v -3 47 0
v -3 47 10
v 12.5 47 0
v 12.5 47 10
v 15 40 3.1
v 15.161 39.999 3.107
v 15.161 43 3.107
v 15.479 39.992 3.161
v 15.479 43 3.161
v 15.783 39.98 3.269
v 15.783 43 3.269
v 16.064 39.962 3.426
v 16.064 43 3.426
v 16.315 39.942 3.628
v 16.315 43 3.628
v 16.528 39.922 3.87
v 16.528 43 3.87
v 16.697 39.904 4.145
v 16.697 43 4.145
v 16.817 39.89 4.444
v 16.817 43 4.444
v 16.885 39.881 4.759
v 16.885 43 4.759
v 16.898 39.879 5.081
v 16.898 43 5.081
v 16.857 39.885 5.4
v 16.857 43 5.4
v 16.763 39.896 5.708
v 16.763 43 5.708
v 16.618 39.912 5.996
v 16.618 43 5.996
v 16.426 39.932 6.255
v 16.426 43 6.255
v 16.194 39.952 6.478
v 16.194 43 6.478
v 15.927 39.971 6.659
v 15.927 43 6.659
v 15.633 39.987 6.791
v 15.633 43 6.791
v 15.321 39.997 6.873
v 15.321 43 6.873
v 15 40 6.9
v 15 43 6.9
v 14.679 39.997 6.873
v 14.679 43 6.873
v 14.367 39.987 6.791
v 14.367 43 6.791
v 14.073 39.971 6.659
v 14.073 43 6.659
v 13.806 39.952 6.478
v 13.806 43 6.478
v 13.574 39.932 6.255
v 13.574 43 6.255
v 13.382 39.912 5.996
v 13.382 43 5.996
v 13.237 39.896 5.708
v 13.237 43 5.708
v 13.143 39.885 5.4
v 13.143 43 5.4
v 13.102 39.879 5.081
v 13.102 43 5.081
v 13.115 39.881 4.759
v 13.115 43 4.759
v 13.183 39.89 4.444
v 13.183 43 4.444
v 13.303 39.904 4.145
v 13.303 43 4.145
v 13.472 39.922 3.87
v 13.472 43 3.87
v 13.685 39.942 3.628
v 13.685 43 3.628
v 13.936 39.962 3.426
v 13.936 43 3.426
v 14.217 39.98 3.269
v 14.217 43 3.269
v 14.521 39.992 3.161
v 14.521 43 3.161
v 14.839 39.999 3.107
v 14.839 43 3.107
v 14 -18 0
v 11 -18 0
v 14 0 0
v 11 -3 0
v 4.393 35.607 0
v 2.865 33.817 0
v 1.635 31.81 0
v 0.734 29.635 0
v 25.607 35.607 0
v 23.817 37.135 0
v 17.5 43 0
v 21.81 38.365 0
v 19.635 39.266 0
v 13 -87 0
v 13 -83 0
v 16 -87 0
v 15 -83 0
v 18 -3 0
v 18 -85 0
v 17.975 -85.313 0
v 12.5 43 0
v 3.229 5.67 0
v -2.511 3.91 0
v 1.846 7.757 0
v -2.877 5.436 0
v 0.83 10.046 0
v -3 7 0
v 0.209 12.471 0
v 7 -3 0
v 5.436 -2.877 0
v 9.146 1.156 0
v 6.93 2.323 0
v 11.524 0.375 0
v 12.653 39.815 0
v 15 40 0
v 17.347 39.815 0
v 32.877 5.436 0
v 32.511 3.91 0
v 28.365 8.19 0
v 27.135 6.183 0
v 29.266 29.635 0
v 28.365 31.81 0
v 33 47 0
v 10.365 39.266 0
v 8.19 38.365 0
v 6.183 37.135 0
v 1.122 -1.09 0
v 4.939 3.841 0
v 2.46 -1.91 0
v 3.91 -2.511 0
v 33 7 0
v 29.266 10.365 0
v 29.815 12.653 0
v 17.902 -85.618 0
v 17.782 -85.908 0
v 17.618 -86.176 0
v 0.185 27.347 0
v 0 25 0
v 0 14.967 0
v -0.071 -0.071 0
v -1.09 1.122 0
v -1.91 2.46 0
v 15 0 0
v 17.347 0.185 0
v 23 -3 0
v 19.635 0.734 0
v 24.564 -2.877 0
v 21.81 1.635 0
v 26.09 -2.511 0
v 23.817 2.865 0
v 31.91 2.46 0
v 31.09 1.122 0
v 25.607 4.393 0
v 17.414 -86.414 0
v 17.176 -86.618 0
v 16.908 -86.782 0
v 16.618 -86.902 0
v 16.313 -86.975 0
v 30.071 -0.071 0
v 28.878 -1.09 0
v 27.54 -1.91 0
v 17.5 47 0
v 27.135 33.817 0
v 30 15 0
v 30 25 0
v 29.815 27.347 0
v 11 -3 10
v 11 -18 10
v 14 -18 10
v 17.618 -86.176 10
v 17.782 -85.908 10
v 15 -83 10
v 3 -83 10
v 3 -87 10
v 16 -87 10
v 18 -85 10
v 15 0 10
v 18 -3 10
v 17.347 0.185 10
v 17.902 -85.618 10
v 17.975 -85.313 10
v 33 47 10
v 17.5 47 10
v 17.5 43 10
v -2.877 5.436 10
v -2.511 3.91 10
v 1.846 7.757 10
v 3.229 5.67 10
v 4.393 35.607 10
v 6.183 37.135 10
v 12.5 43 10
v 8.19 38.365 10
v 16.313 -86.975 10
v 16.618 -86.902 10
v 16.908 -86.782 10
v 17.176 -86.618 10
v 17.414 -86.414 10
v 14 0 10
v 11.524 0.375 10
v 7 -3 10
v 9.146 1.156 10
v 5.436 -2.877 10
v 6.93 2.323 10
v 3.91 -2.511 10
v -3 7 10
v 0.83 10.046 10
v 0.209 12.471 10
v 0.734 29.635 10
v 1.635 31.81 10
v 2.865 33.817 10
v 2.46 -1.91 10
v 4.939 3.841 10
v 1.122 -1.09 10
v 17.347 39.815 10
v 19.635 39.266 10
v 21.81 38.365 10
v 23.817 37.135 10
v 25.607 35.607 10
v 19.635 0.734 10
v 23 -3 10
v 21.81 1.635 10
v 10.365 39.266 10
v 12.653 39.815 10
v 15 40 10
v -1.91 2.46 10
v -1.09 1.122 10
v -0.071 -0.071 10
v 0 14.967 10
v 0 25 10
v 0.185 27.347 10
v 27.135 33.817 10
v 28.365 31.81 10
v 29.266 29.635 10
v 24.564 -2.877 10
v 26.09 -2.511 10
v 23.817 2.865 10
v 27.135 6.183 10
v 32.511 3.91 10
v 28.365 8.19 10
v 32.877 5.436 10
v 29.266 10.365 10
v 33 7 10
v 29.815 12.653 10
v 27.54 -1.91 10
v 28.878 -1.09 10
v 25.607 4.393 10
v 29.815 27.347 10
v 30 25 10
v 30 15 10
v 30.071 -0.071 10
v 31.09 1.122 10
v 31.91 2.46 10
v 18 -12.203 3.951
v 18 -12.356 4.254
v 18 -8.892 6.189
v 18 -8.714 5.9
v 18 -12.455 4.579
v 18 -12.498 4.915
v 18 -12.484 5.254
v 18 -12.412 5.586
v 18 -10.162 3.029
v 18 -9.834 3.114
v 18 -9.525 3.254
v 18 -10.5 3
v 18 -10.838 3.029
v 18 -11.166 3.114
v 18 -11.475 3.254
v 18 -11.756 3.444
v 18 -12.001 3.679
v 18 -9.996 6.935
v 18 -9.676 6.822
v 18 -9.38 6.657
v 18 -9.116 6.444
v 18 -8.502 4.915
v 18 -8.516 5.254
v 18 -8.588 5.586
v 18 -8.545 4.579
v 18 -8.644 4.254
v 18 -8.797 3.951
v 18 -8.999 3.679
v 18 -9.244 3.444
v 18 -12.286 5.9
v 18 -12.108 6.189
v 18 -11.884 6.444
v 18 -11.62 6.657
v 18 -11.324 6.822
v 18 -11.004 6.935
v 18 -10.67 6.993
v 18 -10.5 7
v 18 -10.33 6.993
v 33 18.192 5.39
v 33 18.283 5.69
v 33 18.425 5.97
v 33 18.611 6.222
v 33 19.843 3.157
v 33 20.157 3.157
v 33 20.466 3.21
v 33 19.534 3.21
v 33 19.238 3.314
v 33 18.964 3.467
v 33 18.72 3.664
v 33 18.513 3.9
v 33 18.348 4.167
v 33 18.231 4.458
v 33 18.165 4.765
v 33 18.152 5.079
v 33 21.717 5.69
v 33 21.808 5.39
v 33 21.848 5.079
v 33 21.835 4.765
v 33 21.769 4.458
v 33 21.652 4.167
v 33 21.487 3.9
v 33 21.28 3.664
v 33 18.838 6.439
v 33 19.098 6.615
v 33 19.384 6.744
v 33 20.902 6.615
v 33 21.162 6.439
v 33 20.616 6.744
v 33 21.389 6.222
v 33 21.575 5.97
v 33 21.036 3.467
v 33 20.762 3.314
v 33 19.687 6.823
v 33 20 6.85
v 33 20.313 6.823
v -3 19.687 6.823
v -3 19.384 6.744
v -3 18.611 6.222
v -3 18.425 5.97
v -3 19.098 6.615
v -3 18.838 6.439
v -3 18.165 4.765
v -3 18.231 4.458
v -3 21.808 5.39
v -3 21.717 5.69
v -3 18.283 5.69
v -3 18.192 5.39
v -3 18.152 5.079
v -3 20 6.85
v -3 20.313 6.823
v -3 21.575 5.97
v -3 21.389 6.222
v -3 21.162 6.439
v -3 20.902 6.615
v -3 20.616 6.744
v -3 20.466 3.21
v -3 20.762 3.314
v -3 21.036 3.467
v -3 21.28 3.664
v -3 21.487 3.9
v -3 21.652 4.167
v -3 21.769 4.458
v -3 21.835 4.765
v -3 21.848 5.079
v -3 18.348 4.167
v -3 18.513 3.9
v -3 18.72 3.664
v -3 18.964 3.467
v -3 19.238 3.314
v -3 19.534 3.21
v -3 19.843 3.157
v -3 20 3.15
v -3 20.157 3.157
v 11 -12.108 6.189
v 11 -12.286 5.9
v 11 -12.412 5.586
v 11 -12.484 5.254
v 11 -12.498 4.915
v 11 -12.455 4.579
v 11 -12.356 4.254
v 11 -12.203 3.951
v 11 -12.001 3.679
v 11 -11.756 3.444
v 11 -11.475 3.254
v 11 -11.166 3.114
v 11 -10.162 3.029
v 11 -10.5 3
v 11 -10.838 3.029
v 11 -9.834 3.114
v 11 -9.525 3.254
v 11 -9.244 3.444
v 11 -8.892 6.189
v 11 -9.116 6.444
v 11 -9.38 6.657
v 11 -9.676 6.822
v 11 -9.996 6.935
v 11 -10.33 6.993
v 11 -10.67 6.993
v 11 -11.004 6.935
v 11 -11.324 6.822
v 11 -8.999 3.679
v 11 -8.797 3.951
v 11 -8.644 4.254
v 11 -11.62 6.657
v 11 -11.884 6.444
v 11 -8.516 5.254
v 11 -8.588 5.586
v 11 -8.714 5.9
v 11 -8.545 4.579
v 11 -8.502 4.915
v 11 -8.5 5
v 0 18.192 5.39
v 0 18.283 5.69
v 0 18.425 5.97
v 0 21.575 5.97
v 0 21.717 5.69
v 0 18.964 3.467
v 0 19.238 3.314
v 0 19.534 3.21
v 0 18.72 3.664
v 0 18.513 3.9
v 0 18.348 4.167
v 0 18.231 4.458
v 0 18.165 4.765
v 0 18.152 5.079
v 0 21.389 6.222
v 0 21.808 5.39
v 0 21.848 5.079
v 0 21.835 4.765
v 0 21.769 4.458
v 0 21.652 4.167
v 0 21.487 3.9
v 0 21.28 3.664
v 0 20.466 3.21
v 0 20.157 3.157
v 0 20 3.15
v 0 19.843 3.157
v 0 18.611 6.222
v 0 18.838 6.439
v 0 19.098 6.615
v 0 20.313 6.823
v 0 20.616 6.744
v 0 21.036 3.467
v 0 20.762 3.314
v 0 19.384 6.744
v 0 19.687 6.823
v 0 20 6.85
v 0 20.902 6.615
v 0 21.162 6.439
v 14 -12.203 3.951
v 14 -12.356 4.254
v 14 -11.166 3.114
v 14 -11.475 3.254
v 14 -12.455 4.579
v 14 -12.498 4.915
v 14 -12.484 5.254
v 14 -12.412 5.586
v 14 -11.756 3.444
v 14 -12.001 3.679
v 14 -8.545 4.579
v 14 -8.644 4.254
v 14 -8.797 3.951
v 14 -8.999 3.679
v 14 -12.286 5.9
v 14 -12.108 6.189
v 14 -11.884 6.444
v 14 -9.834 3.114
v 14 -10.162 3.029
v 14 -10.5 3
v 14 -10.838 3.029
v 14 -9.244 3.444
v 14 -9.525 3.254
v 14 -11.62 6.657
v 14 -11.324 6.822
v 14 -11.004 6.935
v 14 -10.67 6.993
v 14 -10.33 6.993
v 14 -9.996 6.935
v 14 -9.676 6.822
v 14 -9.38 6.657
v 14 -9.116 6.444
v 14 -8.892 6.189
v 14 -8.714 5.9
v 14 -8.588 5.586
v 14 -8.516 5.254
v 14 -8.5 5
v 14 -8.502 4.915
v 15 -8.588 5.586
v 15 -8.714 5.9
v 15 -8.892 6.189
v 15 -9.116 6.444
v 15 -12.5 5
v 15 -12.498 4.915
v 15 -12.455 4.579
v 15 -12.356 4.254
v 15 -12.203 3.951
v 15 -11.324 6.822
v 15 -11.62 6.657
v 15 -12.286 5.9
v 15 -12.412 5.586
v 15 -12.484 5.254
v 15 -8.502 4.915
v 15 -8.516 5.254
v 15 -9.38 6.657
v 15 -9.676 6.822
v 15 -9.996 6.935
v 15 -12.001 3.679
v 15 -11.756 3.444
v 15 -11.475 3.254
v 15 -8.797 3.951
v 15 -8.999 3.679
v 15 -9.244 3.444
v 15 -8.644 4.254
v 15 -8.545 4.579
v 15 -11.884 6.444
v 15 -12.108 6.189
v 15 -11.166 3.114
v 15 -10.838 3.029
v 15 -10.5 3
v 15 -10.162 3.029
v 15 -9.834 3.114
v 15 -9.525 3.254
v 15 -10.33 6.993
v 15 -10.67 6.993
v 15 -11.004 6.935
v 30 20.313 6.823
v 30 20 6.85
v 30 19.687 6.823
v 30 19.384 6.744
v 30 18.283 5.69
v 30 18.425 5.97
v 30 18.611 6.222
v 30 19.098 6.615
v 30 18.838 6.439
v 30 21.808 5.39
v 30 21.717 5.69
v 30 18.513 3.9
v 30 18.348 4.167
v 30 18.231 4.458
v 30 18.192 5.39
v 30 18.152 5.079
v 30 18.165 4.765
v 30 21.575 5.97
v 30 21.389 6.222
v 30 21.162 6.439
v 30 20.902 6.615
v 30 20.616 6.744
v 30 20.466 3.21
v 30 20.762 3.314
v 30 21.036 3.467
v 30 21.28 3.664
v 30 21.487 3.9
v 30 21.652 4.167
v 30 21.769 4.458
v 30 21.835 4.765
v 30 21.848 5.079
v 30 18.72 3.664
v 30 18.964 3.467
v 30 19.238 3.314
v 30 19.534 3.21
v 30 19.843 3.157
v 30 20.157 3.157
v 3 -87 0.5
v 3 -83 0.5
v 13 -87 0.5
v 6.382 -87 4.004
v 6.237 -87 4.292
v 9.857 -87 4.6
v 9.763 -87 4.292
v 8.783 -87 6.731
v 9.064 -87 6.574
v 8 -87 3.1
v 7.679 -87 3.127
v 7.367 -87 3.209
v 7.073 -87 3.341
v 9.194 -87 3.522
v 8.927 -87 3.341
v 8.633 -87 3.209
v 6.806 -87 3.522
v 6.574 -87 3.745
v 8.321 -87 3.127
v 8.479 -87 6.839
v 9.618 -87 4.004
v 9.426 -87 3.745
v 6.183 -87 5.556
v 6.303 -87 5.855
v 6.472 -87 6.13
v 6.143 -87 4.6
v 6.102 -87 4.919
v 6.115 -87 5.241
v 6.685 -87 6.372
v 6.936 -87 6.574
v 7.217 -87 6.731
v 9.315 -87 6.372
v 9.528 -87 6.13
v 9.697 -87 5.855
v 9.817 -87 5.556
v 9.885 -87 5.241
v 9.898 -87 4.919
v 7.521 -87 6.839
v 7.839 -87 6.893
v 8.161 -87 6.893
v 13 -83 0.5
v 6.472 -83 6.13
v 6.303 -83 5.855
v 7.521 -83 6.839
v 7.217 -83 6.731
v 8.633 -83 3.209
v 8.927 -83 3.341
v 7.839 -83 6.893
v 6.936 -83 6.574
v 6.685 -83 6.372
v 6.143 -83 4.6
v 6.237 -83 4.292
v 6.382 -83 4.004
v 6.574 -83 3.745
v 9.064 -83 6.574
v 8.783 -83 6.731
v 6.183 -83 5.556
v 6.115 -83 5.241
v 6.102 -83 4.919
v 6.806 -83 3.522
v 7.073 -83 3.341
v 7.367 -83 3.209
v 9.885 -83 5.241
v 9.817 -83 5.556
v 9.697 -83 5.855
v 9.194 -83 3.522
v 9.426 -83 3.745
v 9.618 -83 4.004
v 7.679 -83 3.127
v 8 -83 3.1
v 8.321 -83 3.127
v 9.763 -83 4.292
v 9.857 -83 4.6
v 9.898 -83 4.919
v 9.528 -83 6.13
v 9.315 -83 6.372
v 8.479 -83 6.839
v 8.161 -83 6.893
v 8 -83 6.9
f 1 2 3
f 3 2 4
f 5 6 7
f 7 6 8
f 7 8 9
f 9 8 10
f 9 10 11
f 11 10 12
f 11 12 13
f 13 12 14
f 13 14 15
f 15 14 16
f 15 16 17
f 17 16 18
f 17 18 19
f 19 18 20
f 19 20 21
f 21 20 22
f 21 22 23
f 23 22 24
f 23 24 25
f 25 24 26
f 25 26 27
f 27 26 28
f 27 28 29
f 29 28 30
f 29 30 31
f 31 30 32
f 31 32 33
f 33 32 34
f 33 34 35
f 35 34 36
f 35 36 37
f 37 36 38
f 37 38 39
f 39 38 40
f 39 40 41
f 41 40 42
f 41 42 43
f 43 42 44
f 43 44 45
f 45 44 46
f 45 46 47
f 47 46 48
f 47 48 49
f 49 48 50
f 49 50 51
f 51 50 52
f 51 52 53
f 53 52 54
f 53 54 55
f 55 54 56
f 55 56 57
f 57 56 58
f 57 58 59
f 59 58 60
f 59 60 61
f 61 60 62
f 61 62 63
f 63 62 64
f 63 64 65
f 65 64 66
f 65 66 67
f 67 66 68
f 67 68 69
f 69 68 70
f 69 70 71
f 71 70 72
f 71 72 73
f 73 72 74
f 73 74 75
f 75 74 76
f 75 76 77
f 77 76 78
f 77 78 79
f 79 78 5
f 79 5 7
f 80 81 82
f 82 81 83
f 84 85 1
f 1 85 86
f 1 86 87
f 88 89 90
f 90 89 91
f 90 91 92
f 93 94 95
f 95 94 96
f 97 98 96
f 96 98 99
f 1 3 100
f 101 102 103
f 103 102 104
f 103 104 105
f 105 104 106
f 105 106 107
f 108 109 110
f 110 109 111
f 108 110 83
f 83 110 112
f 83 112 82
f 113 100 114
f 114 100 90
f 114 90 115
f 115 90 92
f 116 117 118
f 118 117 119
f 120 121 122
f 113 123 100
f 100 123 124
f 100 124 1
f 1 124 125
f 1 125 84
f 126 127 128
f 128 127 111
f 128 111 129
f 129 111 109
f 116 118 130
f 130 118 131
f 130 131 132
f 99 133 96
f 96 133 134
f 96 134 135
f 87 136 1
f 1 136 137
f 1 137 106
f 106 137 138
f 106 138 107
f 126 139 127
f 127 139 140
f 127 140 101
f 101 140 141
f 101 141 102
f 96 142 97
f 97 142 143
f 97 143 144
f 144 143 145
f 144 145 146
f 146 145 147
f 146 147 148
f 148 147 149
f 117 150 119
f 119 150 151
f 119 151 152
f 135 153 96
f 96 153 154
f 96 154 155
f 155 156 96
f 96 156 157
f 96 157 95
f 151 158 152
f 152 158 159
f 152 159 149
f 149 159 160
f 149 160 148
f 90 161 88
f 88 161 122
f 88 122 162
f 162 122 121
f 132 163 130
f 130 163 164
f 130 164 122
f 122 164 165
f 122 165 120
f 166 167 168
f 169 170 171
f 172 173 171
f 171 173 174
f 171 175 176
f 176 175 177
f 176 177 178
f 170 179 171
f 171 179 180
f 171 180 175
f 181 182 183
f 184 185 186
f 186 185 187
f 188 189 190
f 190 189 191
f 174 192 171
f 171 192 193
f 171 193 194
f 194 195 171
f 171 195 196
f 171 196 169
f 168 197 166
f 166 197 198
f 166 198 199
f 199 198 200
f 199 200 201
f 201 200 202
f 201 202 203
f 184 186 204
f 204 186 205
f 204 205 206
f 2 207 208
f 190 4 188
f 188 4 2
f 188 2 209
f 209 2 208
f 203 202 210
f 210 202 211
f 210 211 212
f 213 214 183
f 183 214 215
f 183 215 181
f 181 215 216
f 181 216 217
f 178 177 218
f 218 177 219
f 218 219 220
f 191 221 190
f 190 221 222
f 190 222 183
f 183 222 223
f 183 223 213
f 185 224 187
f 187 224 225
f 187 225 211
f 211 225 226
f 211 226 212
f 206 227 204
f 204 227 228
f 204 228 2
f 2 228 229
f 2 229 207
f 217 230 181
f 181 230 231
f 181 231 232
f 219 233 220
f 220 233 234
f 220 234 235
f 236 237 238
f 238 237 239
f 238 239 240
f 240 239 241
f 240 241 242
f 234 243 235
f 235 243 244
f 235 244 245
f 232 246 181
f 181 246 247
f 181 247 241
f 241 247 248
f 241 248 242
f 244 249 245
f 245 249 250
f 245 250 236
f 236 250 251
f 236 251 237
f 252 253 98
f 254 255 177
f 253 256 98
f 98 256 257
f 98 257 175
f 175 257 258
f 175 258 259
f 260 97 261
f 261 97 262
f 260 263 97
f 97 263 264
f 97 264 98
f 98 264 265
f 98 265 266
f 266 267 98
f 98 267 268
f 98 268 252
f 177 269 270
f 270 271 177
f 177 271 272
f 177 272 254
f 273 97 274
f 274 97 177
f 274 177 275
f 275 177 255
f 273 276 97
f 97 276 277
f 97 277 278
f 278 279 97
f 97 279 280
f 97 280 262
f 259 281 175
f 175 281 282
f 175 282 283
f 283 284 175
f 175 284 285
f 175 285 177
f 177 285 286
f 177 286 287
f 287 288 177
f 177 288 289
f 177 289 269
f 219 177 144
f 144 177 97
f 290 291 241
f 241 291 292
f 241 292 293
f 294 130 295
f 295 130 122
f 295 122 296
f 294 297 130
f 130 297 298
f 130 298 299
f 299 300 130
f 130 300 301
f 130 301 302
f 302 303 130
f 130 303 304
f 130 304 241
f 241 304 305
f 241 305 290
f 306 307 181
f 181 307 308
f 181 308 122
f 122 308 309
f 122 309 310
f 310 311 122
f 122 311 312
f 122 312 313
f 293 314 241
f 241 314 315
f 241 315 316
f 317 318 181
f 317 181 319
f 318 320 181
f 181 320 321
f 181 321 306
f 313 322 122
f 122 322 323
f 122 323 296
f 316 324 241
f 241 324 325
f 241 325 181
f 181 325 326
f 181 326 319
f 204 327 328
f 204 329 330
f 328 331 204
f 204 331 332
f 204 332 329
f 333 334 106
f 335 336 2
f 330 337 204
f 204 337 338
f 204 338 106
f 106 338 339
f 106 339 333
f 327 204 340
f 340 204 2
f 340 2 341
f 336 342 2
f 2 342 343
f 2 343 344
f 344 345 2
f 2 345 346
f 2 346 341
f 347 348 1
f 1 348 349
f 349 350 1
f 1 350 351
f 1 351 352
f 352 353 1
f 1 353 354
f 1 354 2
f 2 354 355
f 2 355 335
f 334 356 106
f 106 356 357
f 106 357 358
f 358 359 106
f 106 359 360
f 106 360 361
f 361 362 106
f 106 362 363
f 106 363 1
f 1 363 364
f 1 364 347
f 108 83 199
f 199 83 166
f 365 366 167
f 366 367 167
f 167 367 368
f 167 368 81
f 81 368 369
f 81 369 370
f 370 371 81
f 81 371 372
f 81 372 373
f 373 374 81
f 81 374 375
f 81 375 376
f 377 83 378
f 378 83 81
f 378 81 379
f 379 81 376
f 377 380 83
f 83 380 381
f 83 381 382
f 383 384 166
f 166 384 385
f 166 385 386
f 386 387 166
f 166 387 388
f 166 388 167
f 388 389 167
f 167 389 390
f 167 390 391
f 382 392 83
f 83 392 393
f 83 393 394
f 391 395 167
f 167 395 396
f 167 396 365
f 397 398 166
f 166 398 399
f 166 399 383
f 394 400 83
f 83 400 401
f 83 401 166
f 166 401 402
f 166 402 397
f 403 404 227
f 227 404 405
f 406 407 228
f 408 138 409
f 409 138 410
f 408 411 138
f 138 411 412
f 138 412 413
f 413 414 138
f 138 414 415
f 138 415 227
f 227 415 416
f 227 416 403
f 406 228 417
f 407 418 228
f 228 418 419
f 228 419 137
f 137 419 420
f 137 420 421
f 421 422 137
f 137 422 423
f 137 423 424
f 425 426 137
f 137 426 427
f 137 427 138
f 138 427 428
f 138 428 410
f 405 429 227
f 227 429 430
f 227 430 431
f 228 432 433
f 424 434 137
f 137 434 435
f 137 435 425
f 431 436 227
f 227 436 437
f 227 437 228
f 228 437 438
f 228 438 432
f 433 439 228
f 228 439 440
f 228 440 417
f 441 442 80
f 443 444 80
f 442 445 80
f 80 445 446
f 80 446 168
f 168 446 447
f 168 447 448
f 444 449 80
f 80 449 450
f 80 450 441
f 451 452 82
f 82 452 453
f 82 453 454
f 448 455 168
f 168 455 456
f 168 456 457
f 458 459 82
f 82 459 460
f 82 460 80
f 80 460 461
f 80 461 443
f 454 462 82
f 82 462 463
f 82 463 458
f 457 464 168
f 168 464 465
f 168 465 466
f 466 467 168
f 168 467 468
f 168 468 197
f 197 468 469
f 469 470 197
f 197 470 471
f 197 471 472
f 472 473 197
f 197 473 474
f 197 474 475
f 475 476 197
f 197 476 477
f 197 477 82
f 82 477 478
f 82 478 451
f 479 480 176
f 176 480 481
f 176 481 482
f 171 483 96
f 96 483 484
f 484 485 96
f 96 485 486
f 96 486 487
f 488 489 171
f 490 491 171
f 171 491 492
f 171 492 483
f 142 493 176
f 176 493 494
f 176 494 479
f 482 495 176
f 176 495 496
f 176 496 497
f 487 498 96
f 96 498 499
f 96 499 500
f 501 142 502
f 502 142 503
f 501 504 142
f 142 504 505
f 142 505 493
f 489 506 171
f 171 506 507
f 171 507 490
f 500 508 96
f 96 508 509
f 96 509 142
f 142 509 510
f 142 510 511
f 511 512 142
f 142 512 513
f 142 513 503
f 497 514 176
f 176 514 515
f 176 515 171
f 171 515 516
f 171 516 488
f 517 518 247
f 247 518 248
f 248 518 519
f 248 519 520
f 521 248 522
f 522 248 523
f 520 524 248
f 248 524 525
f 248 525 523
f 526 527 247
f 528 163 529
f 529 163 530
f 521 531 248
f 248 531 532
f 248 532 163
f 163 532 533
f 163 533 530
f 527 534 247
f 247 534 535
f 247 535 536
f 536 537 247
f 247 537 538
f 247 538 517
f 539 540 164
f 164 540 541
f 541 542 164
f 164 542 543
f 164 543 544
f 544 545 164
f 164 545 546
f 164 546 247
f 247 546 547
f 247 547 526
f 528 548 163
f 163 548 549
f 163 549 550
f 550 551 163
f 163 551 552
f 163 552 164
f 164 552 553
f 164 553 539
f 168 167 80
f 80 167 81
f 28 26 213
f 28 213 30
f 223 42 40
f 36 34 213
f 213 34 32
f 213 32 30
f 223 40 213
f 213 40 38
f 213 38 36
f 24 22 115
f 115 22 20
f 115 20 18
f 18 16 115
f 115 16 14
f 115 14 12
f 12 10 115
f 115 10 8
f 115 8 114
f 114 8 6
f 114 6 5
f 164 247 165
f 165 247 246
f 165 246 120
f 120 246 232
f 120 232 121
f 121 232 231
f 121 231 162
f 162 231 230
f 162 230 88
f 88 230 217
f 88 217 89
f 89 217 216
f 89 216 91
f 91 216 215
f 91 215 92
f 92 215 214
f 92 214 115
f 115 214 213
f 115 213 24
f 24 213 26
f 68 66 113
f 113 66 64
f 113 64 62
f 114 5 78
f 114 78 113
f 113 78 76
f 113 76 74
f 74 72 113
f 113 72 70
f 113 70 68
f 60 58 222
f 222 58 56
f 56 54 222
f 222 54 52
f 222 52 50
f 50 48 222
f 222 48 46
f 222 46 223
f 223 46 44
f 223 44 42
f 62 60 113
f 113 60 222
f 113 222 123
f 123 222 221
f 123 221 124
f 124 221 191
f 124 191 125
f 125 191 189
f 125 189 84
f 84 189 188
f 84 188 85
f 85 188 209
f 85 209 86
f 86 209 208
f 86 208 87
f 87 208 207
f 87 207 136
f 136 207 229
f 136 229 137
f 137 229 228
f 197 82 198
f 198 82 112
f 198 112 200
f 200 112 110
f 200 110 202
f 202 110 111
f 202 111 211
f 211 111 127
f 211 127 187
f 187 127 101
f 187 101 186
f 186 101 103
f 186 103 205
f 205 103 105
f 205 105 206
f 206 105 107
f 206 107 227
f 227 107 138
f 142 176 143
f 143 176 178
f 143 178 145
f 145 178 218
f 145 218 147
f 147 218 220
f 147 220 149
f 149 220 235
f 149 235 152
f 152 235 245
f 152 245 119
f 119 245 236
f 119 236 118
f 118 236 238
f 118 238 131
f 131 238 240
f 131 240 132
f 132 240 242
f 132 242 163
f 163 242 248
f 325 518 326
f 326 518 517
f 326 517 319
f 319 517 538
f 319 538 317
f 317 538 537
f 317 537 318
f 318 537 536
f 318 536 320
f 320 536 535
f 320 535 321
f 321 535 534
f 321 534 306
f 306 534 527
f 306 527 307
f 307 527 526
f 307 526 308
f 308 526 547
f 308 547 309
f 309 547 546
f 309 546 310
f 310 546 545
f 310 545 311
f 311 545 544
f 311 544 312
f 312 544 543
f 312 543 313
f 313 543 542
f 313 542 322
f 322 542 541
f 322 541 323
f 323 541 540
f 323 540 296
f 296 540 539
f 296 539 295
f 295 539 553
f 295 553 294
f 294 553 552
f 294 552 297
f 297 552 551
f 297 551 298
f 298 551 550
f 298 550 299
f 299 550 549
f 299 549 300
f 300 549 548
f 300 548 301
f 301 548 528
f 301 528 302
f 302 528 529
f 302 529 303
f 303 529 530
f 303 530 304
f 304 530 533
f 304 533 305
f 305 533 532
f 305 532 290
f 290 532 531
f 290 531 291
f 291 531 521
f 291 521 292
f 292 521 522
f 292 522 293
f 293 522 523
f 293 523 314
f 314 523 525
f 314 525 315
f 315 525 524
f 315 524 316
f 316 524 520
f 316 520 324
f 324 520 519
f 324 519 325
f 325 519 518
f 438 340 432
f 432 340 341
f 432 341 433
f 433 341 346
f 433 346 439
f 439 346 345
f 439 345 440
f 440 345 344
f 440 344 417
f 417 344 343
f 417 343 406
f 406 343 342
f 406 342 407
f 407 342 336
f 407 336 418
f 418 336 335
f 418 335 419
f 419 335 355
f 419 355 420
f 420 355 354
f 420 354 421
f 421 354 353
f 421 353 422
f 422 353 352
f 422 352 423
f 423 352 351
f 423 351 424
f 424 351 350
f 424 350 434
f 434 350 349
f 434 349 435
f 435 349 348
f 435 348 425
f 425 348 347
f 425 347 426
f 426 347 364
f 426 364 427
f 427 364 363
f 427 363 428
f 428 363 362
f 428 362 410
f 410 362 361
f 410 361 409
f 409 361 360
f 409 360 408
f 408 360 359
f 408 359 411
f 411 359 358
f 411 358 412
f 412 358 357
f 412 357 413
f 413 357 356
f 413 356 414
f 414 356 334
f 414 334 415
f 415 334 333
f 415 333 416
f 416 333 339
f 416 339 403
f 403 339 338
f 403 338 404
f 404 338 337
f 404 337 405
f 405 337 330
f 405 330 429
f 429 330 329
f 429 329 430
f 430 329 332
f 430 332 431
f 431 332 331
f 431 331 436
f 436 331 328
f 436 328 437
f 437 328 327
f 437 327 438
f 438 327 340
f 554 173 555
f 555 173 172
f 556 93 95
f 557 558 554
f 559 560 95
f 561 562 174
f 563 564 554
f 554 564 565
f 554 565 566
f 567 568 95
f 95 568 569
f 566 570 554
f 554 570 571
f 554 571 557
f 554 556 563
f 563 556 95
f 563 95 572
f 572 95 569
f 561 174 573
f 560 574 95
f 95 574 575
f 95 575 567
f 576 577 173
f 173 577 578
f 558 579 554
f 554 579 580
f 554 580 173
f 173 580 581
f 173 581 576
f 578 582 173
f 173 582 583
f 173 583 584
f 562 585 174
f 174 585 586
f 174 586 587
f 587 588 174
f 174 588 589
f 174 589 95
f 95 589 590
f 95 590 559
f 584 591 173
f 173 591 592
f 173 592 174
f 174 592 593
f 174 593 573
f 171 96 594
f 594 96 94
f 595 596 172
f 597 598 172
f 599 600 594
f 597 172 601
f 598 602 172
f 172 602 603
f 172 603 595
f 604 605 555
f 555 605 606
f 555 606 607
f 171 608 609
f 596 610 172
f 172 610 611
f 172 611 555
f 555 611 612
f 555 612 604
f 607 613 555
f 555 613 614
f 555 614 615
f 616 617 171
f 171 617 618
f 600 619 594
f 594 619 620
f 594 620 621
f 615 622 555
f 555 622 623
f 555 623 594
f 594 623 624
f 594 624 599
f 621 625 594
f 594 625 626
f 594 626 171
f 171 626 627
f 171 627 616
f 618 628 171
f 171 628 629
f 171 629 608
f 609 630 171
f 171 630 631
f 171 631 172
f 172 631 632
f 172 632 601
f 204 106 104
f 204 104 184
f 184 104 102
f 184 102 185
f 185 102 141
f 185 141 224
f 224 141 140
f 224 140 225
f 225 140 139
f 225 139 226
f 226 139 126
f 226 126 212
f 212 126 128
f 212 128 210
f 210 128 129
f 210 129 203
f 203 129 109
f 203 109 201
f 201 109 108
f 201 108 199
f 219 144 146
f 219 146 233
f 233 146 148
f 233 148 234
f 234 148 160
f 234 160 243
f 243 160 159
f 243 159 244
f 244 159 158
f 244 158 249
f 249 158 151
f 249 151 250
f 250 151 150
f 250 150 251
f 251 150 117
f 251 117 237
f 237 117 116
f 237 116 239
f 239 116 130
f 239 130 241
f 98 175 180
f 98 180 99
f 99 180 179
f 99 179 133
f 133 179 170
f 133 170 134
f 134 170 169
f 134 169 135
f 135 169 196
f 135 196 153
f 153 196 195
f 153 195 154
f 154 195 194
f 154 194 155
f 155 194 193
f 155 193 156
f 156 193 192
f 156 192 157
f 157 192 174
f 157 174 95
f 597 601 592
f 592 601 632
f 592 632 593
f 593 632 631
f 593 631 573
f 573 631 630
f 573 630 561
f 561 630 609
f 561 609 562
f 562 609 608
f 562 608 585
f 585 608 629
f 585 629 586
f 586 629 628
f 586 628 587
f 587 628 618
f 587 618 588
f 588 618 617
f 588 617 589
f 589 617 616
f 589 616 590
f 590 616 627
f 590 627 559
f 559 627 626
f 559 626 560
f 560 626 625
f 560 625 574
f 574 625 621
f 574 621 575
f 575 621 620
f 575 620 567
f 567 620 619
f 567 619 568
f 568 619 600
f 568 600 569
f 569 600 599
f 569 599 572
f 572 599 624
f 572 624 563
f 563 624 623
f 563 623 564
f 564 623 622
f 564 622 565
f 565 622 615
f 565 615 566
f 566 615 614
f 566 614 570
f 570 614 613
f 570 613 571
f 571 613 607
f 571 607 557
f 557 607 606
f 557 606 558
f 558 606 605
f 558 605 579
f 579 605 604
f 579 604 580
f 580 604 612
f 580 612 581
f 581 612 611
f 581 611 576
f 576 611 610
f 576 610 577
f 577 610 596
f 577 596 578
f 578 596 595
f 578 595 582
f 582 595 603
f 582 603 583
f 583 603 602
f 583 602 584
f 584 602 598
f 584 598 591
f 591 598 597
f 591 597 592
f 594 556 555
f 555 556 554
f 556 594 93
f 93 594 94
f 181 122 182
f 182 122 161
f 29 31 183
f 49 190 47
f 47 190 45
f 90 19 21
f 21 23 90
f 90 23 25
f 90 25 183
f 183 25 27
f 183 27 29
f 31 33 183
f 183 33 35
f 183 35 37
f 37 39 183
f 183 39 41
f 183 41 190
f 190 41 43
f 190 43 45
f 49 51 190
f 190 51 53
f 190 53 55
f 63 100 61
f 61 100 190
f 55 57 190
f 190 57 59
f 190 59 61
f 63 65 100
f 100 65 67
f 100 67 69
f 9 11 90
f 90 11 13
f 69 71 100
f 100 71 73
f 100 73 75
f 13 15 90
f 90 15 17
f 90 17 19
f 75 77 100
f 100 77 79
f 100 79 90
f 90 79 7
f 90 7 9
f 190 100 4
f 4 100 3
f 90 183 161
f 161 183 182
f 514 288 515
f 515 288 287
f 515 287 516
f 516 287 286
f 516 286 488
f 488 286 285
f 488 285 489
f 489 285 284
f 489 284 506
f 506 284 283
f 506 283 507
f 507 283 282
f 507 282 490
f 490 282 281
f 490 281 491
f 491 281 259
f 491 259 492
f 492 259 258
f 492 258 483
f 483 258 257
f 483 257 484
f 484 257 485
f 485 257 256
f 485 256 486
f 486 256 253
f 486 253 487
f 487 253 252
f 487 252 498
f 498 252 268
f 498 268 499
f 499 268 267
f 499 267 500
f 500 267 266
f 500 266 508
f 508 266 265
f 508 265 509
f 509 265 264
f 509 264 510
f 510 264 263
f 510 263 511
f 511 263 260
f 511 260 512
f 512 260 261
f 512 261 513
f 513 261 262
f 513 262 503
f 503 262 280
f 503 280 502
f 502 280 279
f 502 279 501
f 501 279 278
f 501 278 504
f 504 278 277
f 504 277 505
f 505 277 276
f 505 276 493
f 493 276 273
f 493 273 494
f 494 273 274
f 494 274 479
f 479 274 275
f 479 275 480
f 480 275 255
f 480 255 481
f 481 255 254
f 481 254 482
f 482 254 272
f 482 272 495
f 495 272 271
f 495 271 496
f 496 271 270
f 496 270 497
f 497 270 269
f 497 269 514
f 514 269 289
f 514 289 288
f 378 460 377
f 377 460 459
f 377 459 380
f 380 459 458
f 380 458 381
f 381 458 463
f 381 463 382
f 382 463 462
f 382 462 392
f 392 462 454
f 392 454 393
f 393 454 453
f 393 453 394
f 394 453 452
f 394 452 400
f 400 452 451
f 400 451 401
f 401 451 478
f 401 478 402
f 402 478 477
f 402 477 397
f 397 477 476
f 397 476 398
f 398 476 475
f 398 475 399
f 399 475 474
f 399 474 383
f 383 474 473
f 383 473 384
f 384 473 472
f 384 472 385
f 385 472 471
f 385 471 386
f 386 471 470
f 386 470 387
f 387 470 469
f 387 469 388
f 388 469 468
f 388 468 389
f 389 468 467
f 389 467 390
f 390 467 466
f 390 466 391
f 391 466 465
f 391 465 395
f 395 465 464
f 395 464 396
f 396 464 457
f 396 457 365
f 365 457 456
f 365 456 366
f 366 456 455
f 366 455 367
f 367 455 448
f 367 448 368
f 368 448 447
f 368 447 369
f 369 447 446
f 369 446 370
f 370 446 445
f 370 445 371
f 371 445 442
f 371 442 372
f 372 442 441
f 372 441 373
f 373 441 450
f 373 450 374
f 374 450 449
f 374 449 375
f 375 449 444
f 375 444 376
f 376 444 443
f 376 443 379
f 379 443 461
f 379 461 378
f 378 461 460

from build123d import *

# Parameters (mm, degrees)
BOSS_EXTRUDE2_DEPTH      = 10
CUT_EXTRUDE2_DEPTH       = 90.877694674
CUT_EXTRUDE2_DEPTH_BACK  = 90.877694674
SKETCH5_W                = 11
SKETCH5_H                = 67.407766248
CUT_EXTRUDE3_DEPTH       = 87.446515257
CUT_EXTRUDE3_DEPTH_BACK  = 87.446515257
SKETCH16_R               = 1.85
FILLET16_R               = 15
CUT_EXTRUDE20_DEPTH      = 92.021975369
CUT_EXTRUDE20_DEPTH_BACK = 92.021975369
SKETCH45_R               = 1.85
SKETCH52_W               = 15
SKETCH52_H               = 10
BOSS_EXTRUDE25_DEPTH     = 4
FILLET17_R               = 10
FILLET18_R               = 2
SKETCH53_R               = 1.9
CUT_EXTRUDE25_DEPTH      = 10
SKETCH55_W               = 0.5
SKETCH55_H               = 4
CUT_EXTRUDE28_DEPTH      = 10
SKETCH56_W               = 10
SKETCH56_H               = 4
BOSS_EXTRUDE26_DEPTH     = 36
SKETCH57_R               = 1.9
CUT_EXTRUDE29_DEPTH      = 36
SKETCH59_W               = 5
SKETCH59_H               = 10
CUT_EXTRUDE31_DEPTH      = 4
CUT_EXTRUDE32_DEPTH      = 91.05553843
CUT_EXTRUDE32_DEPTH_BACK = 91.05553843
SKETCH60_R               = 2


with BuildPart() as part:
    # Sketch2 → Boss-Extrude2 (new body)
    with BuildSketch(Plane.XY):
        Polygon((18, -3), (33, -3), (33, 43), (-3, 43), (-3, -3), (11, -3), (11, -83), (18, -83), align=None)
        Polygon((15, 0), (30, 0), (30, 40), (0, 40), (0, 0), (14, 0), (14, -80), (15, -80), align=None, mode=Mode.SUBTRACT)
    extrude(amount=BOSS_EXTRUDE2_DEPTH)

    # Sketch5 → Cut-Extrude2 (cut, two sides: drawn at the far end of the back side and taken through both)
    with BuildSketch(Plane.XY.offset(10).offset(-CUT_EXTRUDE2_DEPTH_BACK)):
        with Locations((9.5, -51.703883124)):
            Rectangle(SKETCH5_W, SKETCH5_H)
    extrude(amount=CUT_EXTRUDE2_DEPTH + CUT_EXTRUDE2_DEPTH_BACK, mode=Mode.SUBTRACT)

    # Sketch16 → Cut-Extrude3 (cut, two sides: drawn at the far end of the back side and taken through both)
    with BuildSketch(Plane.ZY.offset(-11).offset(-CUT_EXTRUDE3_DEPTH_BACK)):
        with Locations((5, -10.5)):
            Circle(SKETCH16_R)
    extrude(amount=CUT_EXTRUDE3_DEPTH + CUT_EXTRUDE3_DEPTH_BACK, mode=Mode.SUBTRACT)

    # Fillet16
    # the kernel refuses this fillet: 15 mm, written as the material it adds along each edge
    with BuildSketch(Plane(origin=(0, 40, 0), x_dir=(0, -1, 0), z_dir=(0, 0, 1)), Plane(origin=(30, 40, 0), x_dir=(-1, 0, 0), z_dir=(0, 0, 1)), Plane(origin=(30, 0, 0), x_dir=(0, 1, 0), z_dir=(0, 0, 1))) as fillet16_piece_1:
        with BuildLine():
            CenterArc((FILLET16_R, FILLET16_R), FILLET16_R, 180, 90)
            Line((0, FILLET16_R), (-FILLET16_R * 0.02, FILLET16_R))
            Line((-FILLET16_R * 0.02, FILLET16_R), (-FILLET16_R * 0.02, -FILLET16_R * 0.02))
            Line((-FILLET16_R * 0.02, -FILLET16_R * 0.02), (FILLET16_R, -FILLET16_R * 0.02))
            Line((FILLET16_R, -FILLET16_R * 0.02), (FILLET16_R, 0))
        make_face()
    extrude(amount=10)
    with BuildSketch(Plane(origin=(0, 0, 0), x_dir=(1, 0, 0), z_dir=(0, 0, 1))) as fillet16_piece_2:
        with BuildLine():
            CenterArc((15, 14.966629547), FILLET16_R, 180, 86.177446271)
            Line((0, 14.966629547), (-0.3, 14.966629547))
            Line((-0.3, 14.966629547), (-0.3, 0))
            Line((-0.3, 0), (0, -0.3))
            ThreePointArc((0, -0.3), (7, -0.3), (13.98, -0.299332591))
            Line((13.98, -0.299332591), (14, 0))
        make_face()
    extrude(amount=10)

    # Sketch45 → Cut-Extrude20 (cut, two sides: drawn at the far end of the back side and taken through both)
    with BuildSketch(Plane.ZY.offset(3).offset(-CUT_EXTRUDE20_DEPTH_BACK)):
        with Locations((5, 20)):
            Circle(SKETCH45_R)
    extrude(amount=CUT_EXTRUDE20_DEPTH + CUT_EXTRUDE20_DEPTH_BACK, mode=Mode.SUBTRACT)

    # Sketch52 → Boss-Extrude25 (add)
    with BuildSketch(Plane.XZ.offset(83)):
        with Locations((10.5, 5)):
            Rectangle(SKETCH52_W, SKETCH52_H)
    extrude(amount=BOSS_EXTRUDE25_DEPTH)

    # Fillet17
    fillet17_edges = [part.edges().sort_by_distance(p)[0] for p in [
        (-3, -3, 5),
        (33, -3, 5),
    ]]
    fillet(fillet17_edges, radius=FILLET17_R)

    # Fillet18
    fillet18_edges = [part.edges().sort_by_distance(p)[0] for p in [
        (18, -87, 5),
    ]]
    fillet(fillet18_edges, radius=FILLET18_R)

    # Sketch53 → Cut-Extrude25 (cut)
    with BuildSketch(Plane.XZ.offset(87)):
        with Locations(Location((8, 5, 0), (0, 0, 270))):
            Circle(SKETCH53_R)
    extrude(amount=-CUT_EXTRUDE25_DEPTH, mode=Mode.SUBTRACT)

    # Sketch55 → Cut-Extrude28 (cut)
    with BuildSketch(Plane.ZY.offset(-3)):
        with Locations((0.25, -85)):
            Rectangle(SKETCH55_W, SKETCH55_H)
    extrude(amount=-CUT_EXTRUDE28_DEPTH, mode=Mode.SUBTRACT)

    # Sketch56 → Boss-Extrude26 (add)
    with BuildSketch(Plane.ZY.offset(3)):
        with Locations((5, 45)):
            Rectangle(SKETCH56_W, SKETCH56_H)
    extrude(amount=-BOSS_EXTRUDE26_DEPTH)

    # Sketch57 → Cut-Extrude29 (cut)
    with BuildSketch(Plane(origin=(0, 47, 0), x_dir=(1, 0, 0), z_dir=(0, 1, 0))):
        with Locations(Location((15, -5, 0), (0, 0, 270))):
            Circle(SKETCH57_R)
    extrude(amount=-CUT_EXTRUDE29_DEPTH, mode=Mode.SUBTRACT)

    # Sketch59 → Cut-Extrude31 (cut)
    with BuildSketch(Plane(origin=(0, 47, 0), x_dir=(1, 0, 0), z_dir=(0, 1, 0))):
        with Locations((15, -5)):
            Rectangle(SKETCH59_W, SKETCH59_H)
    extrude(amount=-CUT_EXTRUDE31_DEPTH, mode=Mode.SUBTRACT)

    # Sketch60 → Cut-Extrude32 (cut, two sides: drawn at the far end of the back side and taken through both)
    with BuildSketch(Plane(origin=(18, 0, 0), x_dir=(0, 0, -1), z_dir=(1, 0, 0)).offset(-CUT_EXTRUDE32_DEPTH_BACK)):
        with Locations((-5, -10.5)):
            Circle(SKETCH60_R)
    extrude(amount=CUT_EXTRUDE32_DEPTH + CUT_EXTRUDE32_DEPTH_BACK, mode=Mode.SUBTRACT)


solid = part.part
